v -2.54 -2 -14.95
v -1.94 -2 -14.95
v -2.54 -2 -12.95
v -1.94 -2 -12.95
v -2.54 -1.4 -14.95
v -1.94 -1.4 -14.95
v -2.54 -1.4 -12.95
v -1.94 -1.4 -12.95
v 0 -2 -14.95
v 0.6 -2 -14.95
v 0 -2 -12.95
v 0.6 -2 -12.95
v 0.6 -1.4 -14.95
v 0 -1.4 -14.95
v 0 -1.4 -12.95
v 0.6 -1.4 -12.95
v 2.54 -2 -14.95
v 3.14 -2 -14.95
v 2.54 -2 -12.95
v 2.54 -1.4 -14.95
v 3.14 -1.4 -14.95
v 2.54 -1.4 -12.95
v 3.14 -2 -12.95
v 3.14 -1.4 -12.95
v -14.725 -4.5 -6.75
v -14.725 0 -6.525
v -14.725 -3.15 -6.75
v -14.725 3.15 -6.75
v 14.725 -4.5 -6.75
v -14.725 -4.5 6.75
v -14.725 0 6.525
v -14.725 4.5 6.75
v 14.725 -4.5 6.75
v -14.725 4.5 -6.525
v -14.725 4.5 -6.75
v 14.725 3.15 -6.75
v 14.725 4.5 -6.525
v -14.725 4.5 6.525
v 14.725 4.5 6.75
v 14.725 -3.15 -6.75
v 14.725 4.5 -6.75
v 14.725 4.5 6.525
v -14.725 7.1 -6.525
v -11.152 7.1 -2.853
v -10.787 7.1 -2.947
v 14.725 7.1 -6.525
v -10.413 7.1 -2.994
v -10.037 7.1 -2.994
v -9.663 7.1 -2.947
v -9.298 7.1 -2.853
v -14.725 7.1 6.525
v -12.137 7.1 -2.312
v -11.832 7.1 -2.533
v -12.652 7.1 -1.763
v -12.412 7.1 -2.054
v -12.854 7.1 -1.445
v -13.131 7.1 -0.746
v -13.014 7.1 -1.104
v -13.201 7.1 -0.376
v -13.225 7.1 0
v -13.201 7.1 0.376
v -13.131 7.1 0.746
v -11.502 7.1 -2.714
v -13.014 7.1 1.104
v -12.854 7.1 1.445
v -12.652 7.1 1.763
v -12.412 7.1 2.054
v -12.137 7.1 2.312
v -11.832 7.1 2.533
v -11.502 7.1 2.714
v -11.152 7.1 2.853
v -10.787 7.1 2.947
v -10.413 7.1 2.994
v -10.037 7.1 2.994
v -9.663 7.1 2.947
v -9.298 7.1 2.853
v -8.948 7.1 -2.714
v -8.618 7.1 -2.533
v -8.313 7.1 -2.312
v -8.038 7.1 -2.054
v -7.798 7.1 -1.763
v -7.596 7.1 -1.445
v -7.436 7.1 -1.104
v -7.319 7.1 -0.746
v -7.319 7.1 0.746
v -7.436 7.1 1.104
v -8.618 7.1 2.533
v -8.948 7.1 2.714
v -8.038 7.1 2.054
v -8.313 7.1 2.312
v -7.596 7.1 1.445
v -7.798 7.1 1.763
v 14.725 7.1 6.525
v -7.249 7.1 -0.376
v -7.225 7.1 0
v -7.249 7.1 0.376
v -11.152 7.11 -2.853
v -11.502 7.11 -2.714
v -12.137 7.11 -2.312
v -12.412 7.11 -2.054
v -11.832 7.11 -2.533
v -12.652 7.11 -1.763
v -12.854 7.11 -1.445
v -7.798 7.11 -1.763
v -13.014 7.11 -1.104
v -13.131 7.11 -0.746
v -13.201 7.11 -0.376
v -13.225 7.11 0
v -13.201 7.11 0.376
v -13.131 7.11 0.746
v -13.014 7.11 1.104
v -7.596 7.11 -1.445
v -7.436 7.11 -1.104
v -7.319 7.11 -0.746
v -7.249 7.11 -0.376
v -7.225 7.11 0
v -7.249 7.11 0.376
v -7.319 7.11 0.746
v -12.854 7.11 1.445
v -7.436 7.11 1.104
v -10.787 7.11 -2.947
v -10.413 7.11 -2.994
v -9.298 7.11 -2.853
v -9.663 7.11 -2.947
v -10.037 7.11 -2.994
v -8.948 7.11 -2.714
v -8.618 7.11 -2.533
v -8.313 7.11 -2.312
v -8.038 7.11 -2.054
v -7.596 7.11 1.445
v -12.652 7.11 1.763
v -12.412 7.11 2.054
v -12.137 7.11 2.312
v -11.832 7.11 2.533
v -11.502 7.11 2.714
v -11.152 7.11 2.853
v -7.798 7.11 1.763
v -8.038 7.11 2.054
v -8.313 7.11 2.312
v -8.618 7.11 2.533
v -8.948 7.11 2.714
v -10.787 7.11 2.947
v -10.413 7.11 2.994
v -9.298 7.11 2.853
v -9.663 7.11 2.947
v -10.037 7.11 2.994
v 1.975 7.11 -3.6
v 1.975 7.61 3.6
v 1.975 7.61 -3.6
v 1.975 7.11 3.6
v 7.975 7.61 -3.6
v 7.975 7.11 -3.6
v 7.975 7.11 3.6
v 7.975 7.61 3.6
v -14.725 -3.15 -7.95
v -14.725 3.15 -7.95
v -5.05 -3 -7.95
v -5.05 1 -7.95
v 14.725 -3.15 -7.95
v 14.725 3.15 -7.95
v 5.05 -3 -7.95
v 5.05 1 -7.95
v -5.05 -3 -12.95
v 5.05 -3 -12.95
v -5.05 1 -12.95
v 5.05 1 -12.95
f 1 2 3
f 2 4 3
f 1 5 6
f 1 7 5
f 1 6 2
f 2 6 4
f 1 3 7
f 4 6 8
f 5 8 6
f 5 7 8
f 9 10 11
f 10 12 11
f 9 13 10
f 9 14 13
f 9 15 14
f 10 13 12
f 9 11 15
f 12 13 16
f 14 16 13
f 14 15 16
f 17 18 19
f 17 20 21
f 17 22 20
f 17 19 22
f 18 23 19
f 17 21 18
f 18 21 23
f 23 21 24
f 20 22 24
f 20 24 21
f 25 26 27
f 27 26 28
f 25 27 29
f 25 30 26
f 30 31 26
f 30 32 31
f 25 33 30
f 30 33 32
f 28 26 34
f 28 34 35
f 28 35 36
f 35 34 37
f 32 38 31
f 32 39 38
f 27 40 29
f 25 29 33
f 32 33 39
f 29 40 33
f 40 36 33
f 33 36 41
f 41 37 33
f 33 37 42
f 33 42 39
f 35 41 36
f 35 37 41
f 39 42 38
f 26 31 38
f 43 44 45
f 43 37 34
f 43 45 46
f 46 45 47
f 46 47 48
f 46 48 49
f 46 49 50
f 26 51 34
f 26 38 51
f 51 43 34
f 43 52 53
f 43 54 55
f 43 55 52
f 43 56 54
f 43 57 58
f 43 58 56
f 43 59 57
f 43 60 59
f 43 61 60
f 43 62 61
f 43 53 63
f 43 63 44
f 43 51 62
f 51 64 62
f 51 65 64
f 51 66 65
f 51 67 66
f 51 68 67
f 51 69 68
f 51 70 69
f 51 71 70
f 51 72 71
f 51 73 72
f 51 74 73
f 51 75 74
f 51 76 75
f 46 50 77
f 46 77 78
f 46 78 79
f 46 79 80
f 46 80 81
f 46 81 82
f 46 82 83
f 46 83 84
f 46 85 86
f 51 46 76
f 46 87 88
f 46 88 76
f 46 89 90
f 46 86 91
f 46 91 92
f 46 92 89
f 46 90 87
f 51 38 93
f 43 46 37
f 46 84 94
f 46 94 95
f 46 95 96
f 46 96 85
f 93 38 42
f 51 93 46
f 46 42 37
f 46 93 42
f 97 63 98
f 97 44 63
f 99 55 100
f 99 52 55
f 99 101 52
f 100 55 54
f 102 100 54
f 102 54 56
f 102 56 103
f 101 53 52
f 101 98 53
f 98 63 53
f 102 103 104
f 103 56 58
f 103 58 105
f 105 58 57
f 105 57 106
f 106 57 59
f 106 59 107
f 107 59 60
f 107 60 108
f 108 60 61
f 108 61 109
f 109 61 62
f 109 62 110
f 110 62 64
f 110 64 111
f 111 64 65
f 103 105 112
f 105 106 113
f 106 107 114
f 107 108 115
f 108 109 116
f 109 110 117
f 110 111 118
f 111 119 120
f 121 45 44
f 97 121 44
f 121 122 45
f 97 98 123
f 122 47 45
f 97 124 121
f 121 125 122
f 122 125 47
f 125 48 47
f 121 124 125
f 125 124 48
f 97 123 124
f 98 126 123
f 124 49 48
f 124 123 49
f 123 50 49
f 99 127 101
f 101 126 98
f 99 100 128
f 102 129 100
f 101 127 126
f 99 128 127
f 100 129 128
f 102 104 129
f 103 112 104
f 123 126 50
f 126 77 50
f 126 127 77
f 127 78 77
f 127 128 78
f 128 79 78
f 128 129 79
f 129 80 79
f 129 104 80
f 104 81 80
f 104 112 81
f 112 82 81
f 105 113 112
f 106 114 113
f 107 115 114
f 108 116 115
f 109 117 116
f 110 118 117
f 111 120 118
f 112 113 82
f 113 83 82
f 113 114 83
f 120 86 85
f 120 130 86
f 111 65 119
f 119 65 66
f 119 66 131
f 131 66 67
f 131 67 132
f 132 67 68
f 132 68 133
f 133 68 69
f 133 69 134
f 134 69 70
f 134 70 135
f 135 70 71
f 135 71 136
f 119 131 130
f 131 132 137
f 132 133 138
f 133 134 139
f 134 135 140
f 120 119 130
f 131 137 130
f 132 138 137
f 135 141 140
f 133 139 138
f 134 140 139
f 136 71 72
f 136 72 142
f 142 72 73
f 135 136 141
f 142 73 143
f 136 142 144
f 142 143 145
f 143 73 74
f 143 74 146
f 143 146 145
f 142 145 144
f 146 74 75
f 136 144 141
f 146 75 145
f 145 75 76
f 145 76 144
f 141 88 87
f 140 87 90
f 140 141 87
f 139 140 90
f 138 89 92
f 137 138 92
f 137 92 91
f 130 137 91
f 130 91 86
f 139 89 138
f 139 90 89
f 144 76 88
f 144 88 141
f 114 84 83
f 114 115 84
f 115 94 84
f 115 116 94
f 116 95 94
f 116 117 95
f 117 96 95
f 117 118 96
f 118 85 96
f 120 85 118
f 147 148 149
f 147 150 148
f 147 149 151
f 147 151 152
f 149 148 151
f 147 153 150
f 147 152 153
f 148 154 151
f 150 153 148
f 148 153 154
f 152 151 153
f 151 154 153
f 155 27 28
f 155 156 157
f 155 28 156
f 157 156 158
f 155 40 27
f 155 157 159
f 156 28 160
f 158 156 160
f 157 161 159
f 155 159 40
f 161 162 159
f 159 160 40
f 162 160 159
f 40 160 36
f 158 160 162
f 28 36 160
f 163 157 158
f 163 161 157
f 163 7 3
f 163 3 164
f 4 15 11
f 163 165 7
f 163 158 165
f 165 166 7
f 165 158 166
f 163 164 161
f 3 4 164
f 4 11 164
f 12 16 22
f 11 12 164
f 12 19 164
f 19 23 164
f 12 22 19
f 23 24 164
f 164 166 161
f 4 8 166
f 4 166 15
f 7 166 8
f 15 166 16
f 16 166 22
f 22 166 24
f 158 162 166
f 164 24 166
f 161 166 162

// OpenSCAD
// Sharp GP2Y0D413K0F Distance Sensor OpenSCAD Model
// Unit: mm
// Coordinate system: Center of the main body is at origin (0,0,0)
// +Z: Up, +Y: Front (Lens direction), +X: Right

$fn = 50;

module gp2y0d413k0f() {
    // Colors
    case_color = [0.15, 0.15, 0.15]; // Carbonic ABS (dark gray/black)
    lens_color = [0.1, 0.1, 0.1, 0.8]; // Acrylic acid resin (dark/visible light cut)
    pwb_color = [0.3, 0.2, 0.1]; // Paper phenol (brownish)
    pin_color = [0.8, 0.7, 0.2]; // Gold/brass pins
    
    // Main Body Dimensions (estimated from drawing: width=29.45, height=13.5, depth around 9-10)
    body_w = 29.45;
    body_h = 13.5;
    body_d = 9.0; // estimated total thickness excluding lens case and connector

    // 1. Main Body Case
    color(case_color)
    translate([-body_w/2, -body_d/2, -body_h/2])
    cube([body_w, body_d, body_h]);

    // 2. Lens Case (Front protrusion)
    // Front protrudes by 7.1mm (7.1±0.1) from front face
    lens_case_w = 29.45;
    lens_case_h = 13.05;
    lens_case_d = 7.1;
    
    color(case_color)
    translate([-lens_case_w/2, 0, -lens_case_h/2])
    cube([lens_case_w, lens_case_d, lens_case_h]);

    // 3. Lenses
    // Left: Light emitter (circular window), Center is at X = -body_w/2 + 4.5 = -29.45/2 + 4.5 = -10.225
    // Right: Light detector (rectangular window), Center is at X = -body_w/2 + 19.7 = -29.45/2 + 19.7 = 4.975
    // The drawing shows lenses on the front face of the lens case (Y = lens_case_d)
    
    // Emitter Lens (Circular, approx diameter based on 8.4/7.2 height scale -> ~6mm)
    color(lens_color)
    translate([-10.225, lens_case_d + 0.01, 0])
    rotate([90, 0, 0])
    cylinder(h=0.5, d=6.0);

    // Detector Lens (Rectangular, 7.2 height, width approx 6mm)
    color(lens_color)
    translate([4.975 - 3.0, lens_case_d + 0.01, -3.6])
    cube([6.0, 0.5, 7.2]);

    // 4. PWB (Printed Wire Board) at the bottom
    // Thickness: 1.2, extends from bottom of the body
    pwb_w = 29.45;
    pwb_h = 1.2;
    pwb_d = 6.3; // depth estimation based on drawings
    
    color(pwb_color)
    translate([-pwb_w/2, -pwb_d/2, -body_h/2 - pwb_h])
    cube([pwb_w, pwb_d, pwb_h]);

    // 5. Bottom 3-pin Connector (JCTC 12001W90-3P-HF)
    // Width is 10.1 mm, located centrally at the bottom back
    conn_w = 10.1;
    conn_h = 5.0; // height hanging below
    conn_d = 4.0;
    
    color(case_color)
    translate([-conn_w/2, -conn_d/2 - 1.0, -body_h/2 - pwb_h - conn_h])
    cube([conn_w, conn_d, conn_h]);

    // Pins (3 pins, spaced evenly within 10.1mm width, e.g., pitch ~2.54 or similar)
    pin_pitch = 2.54;
    for (i = [-1, 0, 1]) {
        color(pin_color)
        translate([i * pin_pitch, -2.0, -body_h/2 - pwb_h - conn_h - 2.0])
        cube([0.6, 0.6, 4.0]);
    }
}

// Render the sensor centered at origin
gp2y0d413k0f();
